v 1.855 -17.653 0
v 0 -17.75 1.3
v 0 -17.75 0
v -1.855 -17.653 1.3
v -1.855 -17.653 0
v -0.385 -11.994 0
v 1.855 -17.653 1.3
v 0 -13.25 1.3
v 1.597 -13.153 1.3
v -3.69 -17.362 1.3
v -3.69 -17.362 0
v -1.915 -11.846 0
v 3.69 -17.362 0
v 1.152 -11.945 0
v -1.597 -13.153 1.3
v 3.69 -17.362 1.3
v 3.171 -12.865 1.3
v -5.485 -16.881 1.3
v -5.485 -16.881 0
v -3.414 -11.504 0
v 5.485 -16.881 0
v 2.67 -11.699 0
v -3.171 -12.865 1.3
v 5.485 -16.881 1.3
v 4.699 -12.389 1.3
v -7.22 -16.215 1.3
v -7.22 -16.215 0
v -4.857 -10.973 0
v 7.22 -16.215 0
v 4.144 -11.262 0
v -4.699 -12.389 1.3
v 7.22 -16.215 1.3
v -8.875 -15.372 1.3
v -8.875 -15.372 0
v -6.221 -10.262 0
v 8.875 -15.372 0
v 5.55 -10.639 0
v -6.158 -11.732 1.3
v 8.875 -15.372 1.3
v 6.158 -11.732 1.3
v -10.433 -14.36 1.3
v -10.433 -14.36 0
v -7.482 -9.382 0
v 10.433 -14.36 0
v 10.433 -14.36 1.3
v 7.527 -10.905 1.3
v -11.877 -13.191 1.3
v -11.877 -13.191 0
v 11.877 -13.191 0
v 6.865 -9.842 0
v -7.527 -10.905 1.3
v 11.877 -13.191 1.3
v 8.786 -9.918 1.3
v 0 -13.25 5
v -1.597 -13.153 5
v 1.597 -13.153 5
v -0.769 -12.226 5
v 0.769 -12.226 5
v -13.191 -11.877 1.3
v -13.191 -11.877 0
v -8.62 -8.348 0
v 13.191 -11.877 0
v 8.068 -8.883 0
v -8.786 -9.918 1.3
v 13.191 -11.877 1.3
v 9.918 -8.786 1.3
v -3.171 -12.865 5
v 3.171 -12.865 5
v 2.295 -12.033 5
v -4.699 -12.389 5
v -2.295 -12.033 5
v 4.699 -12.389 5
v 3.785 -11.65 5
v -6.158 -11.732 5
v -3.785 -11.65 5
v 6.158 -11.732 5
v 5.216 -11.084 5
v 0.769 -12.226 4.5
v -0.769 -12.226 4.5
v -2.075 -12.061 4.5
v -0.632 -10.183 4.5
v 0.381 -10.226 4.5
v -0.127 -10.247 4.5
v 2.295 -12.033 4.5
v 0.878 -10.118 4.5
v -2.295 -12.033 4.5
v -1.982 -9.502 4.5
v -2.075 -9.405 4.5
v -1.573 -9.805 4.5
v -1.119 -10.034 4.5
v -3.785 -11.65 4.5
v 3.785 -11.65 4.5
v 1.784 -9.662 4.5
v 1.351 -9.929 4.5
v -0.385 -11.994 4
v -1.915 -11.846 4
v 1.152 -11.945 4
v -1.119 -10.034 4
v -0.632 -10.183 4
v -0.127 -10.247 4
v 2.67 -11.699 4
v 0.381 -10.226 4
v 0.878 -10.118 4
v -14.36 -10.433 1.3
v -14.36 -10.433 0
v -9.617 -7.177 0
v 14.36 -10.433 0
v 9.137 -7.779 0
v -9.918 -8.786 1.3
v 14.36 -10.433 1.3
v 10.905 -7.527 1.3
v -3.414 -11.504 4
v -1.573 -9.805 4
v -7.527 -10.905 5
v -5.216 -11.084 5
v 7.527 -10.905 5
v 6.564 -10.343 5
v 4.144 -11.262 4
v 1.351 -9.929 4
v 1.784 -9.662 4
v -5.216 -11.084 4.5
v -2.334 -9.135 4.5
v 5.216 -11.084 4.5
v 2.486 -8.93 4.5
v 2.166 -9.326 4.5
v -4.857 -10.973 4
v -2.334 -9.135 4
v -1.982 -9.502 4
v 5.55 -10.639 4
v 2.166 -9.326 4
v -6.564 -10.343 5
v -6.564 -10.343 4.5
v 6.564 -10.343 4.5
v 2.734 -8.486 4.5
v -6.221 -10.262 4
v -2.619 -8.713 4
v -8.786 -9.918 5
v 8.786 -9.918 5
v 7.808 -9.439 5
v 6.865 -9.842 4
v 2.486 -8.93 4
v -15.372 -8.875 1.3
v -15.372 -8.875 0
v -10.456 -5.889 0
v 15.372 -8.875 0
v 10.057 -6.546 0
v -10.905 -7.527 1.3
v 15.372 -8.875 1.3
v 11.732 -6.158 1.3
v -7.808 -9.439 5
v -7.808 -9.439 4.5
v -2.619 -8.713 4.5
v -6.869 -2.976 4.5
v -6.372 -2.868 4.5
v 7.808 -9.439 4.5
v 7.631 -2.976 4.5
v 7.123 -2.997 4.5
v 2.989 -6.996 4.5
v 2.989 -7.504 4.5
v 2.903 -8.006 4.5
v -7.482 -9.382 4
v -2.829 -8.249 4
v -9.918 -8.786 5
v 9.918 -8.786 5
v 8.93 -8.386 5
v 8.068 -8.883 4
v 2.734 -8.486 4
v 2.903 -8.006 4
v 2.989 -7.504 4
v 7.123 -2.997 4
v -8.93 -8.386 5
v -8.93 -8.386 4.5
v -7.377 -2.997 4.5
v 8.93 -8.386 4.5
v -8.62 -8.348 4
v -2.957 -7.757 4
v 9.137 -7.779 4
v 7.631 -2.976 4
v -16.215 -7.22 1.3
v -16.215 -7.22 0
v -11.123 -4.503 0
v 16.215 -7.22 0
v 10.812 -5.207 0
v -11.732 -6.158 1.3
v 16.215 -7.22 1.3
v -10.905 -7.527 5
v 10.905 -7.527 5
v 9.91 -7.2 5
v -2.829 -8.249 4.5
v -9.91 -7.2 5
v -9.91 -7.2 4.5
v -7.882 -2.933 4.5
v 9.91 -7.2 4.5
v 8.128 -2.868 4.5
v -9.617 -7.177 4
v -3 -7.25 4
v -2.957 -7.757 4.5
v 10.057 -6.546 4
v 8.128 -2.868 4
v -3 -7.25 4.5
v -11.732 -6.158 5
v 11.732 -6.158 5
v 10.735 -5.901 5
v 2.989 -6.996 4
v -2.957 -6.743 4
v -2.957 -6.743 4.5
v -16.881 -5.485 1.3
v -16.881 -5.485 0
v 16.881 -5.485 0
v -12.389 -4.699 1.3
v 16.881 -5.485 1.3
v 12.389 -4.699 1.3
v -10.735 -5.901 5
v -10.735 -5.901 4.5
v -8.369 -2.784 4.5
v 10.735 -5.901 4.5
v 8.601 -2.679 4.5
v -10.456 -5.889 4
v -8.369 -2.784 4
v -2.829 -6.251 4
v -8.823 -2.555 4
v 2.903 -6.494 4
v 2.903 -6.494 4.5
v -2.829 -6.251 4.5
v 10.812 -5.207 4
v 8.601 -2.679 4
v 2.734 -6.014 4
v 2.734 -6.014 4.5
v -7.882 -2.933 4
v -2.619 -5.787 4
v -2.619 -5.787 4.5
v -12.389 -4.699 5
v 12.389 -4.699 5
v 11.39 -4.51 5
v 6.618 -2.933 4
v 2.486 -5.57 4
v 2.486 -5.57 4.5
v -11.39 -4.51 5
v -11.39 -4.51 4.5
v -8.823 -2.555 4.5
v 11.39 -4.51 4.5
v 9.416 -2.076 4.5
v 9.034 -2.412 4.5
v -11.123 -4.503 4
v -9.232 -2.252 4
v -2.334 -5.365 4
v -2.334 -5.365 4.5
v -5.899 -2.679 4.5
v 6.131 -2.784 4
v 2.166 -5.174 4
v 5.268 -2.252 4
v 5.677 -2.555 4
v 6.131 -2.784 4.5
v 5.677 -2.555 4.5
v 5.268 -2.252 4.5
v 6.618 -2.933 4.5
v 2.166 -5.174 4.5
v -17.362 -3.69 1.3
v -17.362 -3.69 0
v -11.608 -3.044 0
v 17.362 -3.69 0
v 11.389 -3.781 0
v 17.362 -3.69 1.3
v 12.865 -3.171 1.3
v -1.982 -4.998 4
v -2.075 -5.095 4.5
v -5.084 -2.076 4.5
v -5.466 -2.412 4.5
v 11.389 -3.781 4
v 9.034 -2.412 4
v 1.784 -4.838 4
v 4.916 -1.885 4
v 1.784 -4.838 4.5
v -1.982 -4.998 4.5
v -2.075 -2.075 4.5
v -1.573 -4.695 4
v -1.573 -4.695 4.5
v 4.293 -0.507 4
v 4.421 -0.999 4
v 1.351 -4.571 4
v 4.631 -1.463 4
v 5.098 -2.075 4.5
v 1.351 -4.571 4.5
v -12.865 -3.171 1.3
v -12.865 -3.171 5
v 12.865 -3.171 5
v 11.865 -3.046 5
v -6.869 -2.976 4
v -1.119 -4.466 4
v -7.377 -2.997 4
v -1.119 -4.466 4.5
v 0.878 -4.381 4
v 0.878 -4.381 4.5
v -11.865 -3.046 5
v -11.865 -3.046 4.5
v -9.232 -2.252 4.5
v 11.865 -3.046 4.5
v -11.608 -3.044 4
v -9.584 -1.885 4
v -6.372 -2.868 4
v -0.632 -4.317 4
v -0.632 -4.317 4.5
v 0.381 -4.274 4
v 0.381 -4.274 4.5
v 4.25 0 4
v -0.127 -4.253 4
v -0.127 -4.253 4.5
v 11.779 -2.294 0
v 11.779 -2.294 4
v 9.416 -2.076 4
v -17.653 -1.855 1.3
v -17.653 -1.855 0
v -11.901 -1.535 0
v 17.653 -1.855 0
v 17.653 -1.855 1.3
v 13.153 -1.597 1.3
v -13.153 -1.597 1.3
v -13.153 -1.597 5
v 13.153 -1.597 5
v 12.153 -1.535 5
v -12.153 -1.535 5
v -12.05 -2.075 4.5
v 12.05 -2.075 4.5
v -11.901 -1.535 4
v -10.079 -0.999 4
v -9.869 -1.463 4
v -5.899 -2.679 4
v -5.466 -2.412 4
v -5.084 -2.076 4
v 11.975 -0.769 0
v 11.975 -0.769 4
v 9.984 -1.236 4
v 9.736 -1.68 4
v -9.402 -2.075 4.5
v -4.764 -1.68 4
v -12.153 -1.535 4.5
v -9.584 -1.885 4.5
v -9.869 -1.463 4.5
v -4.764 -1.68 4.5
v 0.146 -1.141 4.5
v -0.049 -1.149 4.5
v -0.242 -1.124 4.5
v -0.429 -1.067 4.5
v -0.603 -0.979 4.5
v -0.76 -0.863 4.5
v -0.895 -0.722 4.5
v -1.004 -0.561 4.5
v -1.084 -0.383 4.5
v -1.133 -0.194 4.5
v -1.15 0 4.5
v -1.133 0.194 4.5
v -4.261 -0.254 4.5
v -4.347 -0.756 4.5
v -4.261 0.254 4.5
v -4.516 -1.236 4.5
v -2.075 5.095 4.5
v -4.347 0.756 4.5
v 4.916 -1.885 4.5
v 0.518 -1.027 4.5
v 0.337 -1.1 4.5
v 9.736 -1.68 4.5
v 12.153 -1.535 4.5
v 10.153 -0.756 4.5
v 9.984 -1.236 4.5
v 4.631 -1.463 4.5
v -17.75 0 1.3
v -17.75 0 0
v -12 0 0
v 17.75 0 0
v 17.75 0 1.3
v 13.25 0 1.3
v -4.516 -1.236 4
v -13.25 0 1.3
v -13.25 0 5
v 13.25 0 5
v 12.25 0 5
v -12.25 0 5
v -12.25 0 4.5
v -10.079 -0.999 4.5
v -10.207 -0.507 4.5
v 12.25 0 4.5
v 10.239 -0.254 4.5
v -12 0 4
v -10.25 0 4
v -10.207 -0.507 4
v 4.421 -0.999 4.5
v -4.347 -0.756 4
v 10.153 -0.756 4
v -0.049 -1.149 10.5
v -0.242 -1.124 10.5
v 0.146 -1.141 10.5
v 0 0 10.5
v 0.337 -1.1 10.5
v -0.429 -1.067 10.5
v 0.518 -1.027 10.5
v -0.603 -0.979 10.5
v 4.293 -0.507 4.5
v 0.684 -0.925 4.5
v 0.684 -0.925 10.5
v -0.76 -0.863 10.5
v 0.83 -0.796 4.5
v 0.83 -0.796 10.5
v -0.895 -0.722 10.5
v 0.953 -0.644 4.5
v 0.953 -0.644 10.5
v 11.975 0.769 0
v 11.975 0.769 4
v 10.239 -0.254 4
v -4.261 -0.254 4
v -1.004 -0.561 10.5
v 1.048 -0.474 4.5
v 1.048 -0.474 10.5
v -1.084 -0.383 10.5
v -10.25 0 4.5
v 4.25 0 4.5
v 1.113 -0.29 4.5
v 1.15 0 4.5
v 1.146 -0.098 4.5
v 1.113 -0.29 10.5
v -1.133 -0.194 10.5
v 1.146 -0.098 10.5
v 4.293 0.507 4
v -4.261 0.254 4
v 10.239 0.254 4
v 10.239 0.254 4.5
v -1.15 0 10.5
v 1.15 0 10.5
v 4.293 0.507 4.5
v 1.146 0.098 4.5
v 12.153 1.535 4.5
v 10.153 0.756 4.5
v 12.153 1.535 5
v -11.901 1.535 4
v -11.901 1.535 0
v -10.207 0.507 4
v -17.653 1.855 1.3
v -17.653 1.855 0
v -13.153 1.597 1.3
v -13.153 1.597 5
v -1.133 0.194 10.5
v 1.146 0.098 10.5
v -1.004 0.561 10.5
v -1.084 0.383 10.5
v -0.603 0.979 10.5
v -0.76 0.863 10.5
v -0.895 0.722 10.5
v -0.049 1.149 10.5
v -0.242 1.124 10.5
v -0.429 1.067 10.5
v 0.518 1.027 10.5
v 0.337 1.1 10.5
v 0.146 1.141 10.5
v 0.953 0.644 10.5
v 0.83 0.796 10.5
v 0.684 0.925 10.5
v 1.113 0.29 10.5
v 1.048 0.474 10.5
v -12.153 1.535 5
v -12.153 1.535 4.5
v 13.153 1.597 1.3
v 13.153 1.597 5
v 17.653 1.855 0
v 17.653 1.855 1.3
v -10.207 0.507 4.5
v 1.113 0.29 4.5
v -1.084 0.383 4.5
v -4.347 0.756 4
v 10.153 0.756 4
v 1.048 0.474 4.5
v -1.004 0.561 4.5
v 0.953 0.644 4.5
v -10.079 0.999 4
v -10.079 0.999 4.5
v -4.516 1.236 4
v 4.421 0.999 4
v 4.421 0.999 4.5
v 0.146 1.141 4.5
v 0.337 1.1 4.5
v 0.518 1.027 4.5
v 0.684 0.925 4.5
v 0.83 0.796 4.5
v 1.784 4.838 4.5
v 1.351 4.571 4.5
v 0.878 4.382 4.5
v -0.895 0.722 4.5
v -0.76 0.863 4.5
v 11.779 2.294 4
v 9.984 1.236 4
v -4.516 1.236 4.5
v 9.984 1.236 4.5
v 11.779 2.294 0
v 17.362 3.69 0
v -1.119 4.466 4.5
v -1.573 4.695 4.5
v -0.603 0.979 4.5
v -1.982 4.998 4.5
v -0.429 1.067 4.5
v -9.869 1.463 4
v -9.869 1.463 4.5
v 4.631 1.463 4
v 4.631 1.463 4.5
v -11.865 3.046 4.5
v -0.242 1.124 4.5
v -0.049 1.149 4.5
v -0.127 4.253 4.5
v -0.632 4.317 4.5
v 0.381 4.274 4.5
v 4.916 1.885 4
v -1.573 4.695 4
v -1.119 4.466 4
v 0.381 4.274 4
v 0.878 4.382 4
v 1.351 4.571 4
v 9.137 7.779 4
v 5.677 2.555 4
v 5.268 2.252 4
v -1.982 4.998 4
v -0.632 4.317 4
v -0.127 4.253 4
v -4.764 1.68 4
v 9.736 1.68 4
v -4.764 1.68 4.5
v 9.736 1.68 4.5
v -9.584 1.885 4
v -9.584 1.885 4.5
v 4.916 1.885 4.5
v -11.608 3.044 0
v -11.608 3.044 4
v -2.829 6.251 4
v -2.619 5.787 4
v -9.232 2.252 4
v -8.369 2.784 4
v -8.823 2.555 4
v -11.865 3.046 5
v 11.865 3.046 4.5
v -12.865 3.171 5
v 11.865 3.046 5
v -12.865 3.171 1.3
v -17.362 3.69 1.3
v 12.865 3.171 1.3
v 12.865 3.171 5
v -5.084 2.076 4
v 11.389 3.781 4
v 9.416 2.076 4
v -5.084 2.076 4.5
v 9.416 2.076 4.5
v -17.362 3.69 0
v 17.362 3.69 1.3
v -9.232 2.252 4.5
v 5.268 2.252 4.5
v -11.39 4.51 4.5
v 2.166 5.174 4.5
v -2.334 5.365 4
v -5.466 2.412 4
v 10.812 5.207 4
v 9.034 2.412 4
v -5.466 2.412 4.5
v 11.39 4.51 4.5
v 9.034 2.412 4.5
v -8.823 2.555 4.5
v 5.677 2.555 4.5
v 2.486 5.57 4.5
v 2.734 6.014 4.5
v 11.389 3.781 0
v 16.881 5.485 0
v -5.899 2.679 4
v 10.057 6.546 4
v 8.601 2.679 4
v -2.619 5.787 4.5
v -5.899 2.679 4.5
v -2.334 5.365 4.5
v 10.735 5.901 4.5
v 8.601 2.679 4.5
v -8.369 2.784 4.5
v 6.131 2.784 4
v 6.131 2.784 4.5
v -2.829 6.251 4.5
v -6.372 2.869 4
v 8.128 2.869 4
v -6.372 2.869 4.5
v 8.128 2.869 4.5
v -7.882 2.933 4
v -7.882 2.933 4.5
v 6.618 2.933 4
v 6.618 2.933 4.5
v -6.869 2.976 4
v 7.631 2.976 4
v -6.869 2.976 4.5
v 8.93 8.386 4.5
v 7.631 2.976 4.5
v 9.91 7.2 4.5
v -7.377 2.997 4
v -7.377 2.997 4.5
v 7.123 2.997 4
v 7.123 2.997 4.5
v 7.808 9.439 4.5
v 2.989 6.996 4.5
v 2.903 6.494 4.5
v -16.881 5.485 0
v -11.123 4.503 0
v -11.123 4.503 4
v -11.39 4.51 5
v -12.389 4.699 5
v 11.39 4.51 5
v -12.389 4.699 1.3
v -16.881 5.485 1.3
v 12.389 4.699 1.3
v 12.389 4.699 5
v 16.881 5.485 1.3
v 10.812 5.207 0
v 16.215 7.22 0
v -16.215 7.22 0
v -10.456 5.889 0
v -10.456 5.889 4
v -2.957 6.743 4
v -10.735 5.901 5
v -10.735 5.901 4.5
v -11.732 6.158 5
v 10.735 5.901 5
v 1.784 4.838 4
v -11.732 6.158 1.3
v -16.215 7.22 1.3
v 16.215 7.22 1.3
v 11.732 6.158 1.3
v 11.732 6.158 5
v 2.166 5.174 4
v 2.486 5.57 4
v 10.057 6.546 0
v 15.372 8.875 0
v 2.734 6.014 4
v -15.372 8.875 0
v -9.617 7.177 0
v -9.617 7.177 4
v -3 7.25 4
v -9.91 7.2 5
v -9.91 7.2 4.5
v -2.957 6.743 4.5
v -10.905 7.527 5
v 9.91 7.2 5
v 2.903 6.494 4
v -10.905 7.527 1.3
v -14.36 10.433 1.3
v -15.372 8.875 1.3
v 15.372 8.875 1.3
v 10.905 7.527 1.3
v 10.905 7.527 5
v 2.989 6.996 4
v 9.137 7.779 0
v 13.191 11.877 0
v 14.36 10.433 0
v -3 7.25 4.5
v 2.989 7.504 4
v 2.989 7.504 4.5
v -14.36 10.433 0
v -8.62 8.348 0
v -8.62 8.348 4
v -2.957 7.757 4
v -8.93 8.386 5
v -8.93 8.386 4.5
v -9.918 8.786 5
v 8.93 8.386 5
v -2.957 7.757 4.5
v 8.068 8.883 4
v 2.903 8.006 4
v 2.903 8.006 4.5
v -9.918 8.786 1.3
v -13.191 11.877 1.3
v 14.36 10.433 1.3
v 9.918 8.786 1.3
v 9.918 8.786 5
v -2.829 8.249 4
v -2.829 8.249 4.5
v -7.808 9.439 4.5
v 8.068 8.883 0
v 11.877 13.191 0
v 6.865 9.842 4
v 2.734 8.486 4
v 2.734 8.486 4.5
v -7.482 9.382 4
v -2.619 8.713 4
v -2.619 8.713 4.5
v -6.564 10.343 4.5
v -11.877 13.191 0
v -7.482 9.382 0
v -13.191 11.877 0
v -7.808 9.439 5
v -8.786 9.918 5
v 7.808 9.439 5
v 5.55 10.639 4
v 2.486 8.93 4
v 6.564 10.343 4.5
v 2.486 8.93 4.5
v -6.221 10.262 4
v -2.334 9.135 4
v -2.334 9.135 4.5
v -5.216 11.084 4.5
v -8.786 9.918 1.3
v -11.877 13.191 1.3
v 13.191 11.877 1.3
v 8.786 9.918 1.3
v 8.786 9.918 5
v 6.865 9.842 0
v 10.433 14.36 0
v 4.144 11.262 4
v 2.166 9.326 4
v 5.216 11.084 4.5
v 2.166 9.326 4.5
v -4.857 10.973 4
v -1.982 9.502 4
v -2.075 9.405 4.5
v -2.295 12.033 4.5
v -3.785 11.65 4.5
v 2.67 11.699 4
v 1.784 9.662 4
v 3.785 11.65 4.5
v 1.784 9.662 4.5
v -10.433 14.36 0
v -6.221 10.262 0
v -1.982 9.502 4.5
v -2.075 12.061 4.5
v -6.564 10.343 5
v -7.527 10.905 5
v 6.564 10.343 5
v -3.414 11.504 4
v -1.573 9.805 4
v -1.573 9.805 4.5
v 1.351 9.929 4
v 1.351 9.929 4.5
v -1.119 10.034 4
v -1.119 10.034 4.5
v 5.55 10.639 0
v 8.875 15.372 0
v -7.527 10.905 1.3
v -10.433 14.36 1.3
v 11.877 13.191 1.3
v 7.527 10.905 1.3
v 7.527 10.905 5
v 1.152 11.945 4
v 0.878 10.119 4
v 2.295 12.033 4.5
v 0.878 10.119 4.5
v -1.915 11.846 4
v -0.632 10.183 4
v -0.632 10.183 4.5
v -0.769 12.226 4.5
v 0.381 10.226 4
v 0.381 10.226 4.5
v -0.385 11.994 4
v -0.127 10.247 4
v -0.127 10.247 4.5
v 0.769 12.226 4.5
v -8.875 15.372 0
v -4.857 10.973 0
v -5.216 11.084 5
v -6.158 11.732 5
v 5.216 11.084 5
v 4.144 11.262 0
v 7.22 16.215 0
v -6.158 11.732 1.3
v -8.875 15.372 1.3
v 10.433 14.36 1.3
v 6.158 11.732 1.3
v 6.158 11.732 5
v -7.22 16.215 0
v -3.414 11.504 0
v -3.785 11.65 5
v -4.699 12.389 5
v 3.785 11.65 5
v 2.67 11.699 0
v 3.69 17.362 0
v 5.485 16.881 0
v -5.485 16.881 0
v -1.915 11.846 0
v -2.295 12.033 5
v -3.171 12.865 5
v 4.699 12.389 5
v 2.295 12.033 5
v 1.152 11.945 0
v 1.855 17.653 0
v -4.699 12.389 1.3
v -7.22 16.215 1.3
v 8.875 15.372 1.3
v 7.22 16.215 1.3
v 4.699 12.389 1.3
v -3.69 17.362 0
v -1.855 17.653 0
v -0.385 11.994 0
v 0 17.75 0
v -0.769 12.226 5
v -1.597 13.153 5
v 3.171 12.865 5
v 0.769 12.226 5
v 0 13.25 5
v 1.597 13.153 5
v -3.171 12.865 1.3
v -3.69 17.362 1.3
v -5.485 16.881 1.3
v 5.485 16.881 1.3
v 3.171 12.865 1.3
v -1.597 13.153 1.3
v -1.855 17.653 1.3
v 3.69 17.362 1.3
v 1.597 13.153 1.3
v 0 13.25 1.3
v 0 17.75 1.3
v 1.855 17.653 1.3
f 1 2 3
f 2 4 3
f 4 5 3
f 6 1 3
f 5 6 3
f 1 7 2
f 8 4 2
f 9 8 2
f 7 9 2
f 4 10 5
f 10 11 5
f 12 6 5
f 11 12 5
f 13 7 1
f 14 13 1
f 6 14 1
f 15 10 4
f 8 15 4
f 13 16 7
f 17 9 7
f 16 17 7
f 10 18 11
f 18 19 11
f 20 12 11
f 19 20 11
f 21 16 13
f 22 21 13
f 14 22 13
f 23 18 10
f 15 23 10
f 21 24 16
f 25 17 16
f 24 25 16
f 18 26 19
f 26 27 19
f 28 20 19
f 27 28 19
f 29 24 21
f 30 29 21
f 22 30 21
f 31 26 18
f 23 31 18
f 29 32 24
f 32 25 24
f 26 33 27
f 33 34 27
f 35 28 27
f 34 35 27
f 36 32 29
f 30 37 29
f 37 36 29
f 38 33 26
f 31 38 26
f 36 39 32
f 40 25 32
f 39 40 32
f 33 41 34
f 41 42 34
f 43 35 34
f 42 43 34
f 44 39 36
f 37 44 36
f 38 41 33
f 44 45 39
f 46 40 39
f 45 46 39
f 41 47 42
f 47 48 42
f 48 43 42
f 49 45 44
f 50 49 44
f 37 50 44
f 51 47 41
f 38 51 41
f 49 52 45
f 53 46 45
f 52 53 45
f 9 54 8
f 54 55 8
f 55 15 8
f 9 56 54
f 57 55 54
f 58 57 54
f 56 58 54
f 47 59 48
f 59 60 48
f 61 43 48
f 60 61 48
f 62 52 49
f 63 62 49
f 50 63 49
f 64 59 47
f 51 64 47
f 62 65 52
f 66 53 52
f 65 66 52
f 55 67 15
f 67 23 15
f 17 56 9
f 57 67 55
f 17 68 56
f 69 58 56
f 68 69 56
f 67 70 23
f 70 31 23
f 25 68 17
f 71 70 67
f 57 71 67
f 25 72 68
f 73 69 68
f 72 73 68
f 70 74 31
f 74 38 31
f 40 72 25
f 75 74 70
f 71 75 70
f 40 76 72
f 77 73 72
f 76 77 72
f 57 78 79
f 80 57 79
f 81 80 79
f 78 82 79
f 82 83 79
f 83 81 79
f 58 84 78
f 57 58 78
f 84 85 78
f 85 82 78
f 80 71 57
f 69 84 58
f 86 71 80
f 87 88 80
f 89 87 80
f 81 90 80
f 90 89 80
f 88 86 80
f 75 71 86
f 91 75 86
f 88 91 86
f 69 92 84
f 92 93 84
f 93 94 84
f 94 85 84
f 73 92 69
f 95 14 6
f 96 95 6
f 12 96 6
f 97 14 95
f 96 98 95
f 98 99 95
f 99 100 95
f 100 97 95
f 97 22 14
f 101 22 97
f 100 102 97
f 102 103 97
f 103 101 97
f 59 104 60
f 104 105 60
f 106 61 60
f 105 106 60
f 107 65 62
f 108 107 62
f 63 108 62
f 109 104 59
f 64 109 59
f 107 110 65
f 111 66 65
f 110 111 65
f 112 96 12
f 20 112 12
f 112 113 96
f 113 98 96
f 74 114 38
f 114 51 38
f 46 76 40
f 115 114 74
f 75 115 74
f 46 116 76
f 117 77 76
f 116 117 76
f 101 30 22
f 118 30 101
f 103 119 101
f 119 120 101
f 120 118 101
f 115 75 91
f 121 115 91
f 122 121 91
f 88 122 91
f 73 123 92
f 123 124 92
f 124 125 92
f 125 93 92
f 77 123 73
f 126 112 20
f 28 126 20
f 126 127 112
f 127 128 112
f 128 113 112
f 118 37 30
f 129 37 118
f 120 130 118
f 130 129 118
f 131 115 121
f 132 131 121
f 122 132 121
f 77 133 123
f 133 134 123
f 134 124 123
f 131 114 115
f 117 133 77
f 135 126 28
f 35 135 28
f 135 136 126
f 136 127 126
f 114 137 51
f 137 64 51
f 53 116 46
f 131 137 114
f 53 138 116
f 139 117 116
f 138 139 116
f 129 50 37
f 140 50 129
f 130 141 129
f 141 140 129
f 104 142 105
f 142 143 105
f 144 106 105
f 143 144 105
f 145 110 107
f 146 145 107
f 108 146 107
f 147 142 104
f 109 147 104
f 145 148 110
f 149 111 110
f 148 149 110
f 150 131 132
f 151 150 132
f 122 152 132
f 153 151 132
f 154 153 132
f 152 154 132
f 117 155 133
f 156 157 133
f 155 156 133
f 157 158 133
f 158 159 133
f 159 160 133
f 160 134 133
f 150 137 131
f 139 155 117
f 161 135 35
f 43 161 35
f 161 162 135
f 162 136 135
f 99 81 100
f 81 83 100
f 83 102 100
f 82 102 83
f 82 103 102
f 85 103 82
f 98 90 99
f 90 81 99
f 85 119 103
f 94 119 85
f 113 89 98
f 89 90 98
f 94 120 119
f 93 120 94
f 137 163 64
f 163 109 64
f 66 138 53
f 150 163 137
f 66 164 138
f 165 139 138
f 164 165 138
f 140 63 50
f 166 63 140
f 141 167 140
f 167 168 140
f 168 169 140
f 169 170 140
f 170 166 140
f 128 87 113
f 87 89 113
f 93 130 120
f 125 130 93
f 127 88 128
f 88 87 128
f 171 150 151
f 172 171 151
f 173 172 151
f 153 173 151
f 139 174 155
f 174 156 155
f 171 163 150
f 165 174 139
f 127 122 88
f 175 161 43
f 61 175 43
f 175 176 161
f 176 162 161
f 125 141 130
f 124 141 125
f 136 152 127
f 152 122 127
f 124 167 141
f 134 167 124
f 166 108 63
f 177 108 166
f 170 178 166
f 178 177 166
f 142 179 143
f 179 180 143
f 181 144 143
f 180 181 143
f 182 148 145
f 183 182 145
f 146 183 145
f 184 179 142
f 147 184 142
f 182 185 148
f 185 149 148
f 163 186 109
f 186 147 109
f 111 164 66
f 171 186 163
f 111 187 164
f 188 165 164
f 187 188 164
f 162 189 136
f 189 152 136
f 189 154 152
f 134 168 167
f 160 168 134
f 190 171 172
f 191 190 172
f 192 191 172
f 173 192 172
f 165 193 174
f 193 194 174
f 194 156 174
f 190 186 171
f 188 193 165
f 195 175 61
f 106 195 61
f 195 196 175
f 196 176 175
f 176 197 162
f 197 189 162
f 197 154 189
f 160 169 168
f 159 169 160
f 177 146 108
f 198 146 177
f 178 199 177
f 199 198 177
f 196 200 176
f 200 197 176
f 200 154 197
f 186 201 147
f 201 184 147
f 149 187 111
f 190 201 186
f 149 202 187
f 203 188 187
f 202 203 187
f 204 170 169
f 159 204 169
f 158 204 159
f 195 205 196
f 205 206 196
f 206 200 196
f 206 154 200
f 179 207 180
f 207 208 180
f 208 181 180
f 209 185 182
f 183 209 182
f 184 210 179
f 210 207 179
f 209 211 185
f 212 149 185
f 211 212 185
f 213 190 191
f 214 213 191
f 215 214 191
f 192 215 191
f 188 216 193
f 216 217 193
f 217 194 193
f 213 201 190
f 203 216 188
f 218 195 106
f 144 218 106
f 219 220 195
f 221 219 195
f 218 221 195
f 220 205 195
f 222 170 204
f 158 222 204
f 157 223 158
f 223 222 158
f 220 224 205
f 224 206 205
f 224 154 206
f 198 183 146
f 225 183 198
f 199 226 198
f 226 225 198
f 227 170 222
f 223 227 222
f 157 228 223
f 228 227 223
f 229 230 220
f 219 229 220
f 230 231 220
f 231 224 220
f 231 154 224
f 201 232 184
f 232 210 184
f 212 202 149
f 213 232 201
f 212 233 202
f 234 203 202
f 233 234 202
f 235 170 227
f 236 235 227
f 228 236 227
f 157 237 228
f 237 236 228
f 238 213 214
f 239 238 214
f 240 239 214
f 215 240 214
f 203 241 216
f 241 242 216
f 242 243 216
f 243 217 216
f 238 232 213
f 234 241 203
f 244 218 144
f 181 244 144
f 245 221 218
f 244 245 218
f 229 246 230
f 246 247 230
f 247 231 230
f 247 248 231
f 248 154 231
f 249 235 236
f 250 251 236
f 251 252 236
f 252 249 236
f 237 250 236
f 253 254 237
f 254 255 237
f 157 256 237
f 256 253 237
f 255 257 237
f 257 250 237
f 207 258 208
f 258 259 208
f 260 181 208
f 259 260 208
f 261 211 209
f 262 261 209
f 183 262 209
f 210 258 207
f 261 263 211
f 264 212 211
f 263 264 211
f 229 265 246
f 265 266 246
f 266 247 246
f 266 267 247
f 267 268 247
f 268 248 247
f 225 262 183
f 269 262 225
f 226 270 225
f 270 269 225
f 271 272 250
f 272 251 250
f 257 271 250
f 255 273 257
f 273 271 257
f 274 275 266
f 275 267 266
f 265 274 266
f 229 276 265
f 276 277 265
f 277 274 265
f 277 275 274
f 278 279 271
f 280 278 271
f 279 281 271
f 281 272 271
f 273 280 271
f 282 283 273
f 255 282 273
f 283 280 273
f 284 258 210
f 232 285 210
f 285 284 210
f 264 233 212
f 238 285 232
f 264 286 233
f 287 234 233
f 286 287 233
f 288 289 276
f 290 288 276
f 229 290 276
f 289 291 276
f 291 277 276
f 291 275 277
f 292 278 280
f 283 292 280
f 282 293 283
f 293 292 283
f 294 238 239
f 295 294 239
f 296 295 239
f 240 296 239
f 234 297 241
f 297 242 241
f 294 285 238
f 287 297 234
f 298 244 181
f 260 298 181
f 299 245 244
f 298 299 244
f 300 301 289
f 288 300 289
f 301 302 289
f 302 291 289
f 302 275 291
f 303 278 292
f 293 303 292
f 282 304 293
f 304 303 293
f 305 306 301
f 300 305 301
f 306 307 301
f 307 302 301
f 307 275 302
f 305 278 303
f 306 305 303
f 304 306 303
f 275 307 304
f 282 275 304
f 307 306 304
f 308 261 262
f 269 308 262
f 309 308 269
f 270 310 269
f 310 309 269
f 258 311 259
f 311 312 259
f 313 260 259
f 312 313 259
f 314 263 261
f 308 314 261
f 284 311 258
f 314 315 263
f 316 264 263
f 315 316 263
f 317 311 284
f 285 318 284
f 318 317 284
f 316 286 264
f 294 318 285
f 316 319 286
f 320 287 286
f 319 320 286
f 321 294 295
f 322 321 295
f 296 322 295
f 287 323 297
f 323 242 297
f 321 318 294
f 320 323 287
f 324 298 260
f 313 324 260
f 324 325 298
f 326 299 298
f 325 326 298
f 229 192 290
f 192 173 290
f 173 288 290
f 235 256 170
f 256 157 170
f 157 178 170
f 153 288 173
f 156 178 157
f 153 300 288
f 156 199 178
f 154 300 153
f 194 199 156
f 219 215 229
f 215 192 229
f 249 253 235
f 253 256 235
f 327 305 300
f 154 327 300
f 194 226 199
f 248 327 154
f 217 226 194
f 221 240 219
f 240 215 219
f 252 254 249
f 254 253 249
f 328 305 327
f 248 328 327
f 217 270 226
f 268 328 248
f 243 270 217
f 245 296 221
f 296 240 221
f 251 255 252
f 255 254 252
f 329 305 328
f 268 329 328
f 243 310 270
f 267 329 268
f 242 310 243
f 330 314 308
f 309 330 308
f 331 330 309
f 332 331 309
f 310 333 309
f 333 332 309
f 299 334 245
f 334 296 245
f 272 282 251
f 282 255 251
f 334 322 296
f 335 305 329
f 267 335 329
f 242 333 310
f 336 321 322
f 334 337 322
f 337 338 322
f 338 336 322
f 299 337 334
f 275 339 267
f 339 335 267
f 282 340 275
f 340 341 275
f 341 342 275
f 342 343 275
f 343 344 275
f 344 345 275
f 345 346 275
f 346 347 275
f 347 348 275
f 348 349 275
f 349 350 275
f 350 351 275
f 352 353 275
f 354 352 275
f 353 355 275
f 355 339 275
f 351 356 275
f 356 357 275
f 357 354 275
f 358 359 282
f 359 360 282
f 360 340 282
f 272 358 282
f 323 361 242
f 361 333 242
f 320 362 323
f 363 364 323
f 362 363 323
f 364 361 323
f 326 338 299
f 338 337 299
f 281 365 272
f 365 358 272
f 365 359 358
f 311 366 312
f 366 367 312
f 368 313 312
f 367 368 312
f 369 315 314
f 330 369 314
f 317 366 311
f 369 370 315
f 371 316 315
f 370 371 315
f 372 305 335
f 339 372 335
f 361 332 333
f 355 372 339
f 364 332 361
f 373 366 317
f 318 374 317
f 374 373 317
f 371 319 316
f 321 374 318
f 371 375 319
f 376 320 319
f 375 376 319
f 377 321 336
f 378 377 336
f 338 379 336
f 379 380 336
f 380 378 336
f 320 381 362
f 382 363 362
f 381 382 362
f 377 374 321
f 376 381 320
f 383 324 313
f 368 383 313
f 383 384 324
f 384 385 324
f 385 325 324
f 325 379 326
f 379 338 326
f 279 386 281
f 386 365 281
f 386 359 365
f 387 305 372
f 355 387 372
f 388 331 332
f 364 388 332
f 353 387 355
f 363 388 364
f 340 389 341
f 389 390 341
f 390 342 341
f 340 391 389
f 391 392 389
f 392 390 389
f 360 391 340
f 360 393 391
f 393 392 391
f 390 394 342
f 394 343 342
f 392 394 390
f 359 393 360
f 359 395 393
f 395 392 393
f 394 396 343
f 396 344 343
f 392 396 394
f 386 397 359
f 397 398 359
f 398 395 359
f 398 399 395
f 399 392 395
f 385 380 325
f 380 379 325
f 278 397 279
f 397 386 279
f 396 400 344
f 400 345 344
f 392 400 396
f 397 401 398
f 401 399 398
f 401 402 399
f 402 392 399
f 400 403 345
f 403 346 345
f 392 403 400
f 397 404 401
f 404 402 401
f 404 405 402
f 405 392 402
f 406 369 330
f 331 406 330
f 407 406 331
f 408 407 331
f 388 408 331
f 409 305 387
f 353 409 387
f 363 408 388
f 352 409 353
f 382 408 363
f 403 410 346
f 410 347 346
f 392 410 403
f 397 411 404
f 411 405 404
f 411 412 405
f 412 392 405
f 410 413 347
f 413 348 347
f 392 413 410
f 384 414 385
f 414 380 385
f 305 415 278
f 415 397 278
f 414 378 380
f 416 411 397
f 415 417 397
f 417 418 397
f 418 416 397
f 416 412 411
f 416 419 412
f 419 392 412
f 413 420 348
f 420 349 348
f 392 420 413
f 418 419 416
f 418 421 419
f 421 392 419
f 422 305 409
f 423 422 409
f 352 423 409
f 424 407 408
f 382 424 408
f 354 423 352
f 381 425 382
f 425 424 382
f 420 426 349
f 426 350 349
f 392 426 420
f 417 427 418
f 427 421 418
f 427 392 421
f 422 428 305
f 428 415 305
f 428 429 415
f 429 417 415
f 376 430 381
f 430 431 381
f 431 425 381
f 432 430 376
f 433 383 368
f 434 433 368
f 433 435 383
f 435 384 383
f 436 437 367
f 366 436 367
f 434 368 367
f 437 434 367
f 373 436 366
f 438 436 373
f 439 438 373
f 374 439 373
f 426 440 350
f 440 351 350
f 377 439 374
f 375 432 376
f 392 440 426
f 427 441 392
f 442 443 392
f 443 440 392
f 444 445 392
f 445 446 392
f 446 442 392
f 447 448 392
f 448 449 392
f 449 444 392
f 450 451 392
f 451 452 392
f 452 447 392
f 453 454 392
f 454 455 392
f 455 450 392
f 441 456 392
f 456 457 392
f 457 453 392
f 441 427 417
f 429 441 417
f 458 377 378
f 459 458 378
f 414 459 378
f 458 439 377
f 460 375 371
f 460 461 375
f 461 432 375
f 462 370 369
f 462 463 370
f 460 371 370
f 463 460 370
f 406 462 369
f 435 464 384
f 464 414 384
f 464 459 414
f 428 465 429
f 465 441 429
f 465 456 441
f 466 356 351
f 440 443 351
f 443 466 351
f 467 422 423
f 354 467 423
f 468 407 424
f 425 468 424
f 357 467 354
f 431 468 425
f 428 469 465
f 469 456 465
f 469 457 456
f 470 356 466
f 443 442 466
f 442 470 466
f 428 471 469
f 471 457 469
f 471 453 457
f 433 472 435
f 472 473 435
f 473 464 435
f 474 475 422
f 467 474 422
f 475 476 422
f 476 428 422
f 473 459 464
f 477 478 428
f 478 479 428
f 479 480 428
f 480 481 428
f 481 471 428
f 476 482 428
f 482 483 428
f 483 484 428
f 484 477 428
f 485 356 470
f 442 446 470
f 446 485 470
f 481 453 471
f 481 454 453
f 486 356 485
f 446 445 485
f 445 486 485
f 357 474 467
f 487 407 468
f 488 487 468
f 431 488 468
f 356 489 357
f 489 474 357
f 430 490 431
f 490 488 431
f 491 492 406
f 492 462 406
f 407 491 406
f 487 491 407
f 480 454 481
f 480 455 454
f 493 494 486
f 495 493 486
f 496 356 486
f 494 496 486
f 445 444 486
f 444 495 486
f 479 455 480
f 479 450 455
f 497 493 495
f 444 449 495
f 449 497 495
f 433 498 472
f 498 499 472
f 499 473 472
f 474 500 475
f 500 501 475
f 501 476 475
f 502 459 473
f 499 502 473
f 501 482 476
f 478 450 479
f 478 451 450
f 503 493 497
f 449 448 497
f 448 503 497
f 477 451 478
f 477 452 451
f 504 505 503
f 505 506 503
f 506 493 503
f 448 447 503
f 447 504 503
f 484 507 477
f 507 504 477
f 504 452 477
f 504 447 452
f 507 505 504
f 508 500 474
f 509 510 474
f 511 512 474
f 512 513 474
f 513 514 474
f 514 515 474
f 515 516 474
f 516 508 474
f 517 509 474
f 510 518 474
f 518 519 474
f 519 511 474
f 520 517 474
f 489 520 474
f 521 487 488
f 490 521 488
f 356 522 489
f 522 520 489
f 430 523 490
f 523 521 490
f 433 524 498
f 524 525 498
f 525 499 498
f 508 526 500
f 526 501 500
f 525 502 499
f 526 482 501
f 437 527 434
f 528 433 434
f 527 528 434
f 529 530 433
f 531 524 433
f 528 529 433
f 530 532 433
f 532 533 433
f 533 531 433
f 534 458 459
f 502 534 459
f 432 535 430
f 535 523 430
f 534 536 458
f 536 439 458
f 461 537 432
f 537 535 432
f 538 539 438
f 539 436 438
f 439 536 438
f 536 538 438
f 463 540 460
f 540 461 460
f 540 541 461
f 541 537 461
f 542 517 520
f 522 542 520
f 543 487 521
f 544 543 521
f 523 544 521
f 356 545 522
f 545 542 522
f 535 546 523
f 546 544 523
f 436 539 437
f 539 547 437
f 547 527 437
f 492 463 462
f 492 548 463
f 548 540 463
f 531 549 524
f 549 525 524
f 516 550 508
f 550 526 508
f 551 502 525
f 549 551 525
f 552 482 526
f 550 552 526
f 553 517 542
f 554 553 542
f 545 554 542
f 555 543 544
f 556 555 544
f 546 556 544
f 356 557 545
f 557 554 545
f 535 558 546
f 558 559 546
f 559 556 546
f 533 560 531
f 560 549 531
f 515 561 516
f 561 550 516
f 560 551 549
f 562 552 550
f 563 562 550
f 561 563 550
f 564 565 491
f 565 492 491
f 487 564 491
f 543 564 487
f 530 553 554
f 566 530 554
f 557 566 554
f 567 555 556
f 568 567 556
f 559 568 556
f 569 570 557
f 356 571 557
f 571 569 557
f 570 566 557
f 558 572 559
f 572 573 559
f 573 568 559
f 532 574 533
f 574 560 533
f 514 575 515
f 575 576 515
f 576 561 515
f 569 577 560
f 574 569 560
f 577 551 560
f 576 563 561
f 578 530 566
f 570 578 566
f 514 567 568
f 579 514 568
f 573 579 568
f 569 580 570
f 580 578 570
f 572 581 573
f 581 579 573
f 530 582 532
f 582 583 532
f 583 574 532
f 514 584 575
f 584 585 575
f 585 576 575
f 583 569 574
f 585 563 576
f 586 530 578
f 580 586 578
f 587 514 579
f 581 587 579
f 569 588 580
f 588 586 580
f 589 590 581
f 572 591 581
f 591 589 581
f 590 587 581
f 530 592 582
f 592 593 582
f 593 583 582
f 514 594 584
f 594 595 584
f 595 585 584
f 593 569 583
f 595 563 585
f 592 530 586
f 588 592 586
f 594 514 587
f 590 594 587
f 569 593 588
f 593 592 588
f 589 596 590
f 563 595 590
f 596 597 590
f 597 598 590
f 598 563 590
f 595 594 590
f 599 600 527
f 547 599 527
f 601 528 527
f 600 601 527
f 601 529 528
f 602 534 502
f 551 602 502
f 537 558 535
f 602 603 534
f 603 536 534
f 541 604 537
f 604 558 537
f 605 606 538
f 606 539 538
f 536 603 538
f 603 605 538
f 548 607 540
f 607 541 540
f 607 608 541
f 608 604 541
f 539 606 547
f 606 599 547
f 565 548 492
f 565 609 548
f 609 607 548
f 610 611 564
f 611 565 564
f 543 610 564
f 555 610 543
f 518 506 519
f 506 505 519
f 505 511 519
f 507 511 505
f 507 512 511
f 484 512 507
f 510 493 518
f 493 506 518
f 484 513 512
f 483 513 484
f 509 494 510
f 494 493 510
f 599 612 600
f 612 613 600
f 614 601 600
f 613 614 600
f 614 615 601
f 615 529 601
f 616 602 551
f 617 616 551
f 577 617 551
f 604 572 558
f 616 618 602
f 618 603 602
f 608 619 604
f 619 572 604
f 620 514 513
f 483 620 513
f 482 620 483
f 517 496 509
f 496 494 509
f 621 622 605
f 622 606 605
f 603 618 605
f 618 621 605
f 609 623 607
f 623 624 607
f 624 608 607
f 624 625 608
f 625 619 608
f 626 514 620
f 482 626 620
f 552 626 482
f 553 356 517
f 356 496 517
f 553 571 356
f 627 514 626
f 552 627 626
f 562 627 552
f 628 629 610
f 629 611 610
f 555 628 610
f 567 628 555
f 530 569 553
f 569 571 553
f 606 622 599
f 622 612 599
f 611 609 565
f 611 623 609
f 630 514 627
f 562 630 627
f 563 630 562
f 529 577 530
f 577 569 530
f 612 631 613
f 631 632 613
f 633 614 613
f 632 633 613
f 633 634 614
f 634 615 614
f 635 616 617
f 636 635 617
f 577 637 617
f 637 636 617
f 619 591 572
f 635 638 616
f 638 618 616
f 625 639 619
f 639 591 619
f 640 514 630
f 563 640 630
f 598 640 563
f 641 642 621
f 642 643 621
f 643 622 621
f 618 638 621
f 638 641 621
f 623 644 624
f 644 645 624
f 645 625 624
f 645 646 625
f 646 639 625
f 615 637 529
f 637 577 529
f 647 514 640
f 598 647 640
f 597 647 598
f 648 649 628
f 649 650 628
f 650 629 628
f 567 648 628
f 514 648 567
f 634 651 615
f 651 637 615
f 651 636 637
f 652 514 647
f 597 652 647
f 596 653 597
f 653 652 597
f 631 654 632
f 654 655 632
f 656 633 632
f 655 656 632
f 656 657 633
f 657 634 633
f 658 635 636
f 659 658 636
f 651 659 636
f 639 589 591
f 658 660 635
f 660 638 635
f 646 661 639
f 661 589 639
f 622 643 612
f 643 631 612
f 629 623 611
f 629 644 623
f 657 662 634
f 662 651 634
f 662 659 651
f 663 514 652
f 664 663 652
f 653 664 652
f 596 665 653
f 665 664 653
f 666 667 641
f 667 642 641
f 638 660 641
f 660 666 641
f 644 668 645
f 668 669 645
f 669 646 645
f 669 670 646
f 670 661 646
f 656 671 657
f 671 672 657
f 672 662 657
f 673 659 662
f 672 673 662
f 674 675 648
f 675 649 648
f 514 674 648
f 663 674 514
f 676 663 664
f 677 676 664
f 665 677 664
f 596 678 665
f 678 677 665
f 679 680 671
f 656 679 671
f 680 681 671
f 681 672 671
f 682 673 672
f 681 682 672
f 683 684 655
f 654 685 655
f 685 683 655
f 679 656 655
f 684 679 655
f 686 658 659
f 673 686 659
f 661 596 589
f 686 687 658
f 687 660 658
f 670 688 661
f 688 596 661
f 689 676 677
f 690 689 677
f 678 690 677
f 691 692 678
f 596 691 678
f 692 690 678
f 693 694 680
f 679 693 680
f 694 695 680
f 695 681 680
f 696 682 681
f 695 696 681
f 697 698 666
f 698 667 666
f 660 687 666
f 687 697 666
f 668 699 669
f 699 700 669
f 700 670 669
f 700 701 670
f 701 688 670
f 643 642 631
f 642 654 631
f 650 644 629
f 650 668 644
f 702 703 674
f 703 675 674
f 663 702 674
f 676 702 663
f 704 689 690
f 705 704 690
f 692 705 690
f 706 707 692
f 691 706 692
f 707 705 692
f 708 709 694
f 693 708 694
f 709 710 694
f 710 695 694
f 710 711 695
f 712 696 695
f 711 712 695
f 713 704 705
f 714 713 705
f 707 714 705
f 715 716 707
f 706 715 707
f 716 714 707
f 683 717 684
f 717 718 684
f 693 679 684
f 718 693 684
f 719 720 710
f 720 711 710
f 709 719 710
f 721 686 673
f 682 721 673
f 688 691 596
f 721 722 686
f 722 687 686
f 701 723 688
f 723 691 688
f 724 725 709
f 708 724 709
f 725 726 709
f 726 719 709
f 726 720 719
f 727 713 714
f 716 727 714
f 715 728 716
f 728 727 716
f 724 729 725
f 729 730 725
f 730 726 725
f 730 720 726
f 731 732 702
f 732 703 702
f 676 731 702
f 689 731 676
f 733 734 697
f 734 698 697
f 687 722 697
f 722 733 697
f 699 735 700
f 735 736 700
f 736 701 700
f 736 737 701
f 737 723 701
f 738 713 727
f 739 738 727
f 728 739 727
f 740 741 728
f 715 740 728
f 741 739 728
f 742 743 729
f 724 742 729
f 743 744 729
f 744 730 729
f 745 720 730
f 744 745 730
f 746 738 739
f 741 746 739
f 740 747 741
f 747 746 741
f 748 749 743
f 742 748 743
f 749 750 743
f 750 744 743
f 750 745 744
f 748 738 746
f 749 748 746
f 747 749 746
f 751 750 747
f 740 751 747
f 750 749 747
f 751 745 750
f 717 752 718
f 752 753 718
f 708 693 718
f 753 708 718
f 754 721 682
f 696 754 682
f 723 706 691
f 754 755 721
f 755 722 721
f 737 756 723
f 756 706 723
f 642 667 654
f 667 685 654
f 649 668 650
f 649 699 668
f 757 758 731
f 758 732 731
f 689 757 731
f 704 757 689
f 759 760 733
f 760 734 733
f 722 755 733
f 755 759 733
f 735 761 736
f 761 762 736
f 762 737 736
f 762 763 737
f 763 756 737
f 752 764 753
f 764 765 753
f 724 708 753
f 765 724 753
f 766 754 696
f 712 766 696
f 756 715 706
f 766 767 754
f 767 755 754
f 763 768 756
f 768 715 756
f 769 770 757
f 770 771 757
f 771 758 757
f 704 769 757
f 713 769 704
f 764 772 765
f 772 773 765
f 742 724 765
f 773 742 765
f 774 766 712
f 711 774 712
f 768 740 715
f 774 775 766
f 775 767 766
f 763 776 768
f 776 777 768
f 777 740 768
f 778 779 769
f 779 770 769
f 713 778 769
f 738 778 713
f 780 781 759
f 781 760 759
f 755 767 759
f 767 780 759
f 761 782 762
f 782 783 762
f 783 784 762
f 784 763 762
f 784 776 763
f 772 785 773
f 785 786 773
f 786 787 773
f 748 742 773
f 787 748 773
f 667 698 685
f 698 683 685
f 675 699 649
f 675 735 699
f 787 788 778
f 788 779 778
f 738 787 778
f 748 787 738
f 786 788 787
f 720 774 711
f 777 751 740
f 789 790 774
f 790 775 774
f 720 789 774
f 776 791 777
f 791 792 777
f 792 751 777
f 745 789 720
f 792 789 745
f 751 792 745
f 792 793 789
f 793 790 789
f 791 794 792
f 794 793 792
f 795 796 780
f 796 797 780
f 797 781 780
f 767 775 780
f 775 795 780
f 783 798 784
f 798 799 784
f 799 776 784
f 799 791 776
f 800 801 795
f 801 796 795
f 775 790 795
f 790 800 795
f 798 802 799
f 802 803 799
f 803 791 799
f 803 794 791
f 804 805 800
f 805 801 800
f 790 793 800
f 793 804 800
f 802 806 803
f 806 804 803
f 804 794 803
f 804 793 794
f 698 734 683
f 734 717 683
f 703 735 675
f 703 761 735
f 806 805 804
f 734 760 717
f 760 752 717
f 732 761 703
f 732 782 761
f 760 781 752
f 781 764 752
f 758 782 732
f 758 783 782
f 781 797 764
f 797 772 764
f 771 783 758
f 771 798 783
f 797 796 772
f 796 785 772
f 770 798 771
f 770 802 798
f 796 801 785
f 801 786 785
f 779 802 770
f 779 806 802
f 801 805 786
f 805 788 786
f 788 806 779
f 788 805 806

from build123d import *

# Parameters (mm, degrees)
SKETCH1_R           = 17.75
BOSS_EXTRUDE1_DEPTH = 1.3
SKETCH2_R           = 13.25
BOSS_EXTRUDE2_DEPTH = 3.7
SKETCH3_R           = 12
CUT_EXTRUDE1_DEPTH  = 4
SKETCH4_R           = 12.25
CUT_EXTRUDE2_DEPTH  = 0.5
SKETCH5_R           = 3
CUT_EXTRUDE3_DEPTH  = 0.5
SKETCH6_R           = 1.15
BOSS_EXTRUDE3_DEPTH = 6


with BuildPart() as part:
    # Sketch1 → Boss-Extrude1 (new body)
    with BuildSketch(Plane.XY):
        Circle(SKETCH1_R)
    extrude(amount=BOSS_EXTRUDE1_DEPTH)

    # Sketch2 → Boss-Extrude2 (add)
    with BuildSketch(Plane.XY.offset(1.3)):
        Circle(SKETCH2_R)
    extrude(amount=BOSS_EXTRUDE2_DEPTH)

    # Sketch3 → Cut-Extrude1 (cut)
    with BuildSketch(Plane(origin=(0, 0, 0), x_dir=(-1, 0, 0), z_dir=(0, 0, -1))):
        Circle(SKETCH3_R)
    extrude(amount=-CUT_EXTRUDE1_DEPTH, mode=Mode.SUBTRACT)

    # Sketch4 → Cut-Extrude2 (cut)
    with BuildSketch(Plane.XY.offset(5)):
        Circle(SKETCH4_R)
    extrude(amount=-CUT_EXTRUDE2_DEPTH, mode=Mode.SUBTRACT)

    # Sketch5 → Cut-Extrude3 (cut)
    with BuildSketch(Plane(origin=(0, 0, 4), x_dir=(-1, 0, 0), z_dir=(0, 0, -1))):
        with Locations((0, 7.25)):
            Circle(SKETCH5_R)
        with Locations((7.25, 0)):
            Circle(SKETCH5_R)
        with Locations((0, -7.25)):
            Circle(SKETCH5_R)
        with Locations((-7.25, 0)):
            Circle(SKETCH5_R)
    extrude(amount=-CUT_EXTRUDE3_DEPTH, mode=Mode.SUBTRACT)

    # Sketch6 → Boss-Extrude3 (add)
    with BuildSketch(Plane.XY.offset(4.5)):
        Circle(SKETCH6_R)
    extrude(amount=BOSS_EXTRUDE3_DEPTH)


solid = part.part
